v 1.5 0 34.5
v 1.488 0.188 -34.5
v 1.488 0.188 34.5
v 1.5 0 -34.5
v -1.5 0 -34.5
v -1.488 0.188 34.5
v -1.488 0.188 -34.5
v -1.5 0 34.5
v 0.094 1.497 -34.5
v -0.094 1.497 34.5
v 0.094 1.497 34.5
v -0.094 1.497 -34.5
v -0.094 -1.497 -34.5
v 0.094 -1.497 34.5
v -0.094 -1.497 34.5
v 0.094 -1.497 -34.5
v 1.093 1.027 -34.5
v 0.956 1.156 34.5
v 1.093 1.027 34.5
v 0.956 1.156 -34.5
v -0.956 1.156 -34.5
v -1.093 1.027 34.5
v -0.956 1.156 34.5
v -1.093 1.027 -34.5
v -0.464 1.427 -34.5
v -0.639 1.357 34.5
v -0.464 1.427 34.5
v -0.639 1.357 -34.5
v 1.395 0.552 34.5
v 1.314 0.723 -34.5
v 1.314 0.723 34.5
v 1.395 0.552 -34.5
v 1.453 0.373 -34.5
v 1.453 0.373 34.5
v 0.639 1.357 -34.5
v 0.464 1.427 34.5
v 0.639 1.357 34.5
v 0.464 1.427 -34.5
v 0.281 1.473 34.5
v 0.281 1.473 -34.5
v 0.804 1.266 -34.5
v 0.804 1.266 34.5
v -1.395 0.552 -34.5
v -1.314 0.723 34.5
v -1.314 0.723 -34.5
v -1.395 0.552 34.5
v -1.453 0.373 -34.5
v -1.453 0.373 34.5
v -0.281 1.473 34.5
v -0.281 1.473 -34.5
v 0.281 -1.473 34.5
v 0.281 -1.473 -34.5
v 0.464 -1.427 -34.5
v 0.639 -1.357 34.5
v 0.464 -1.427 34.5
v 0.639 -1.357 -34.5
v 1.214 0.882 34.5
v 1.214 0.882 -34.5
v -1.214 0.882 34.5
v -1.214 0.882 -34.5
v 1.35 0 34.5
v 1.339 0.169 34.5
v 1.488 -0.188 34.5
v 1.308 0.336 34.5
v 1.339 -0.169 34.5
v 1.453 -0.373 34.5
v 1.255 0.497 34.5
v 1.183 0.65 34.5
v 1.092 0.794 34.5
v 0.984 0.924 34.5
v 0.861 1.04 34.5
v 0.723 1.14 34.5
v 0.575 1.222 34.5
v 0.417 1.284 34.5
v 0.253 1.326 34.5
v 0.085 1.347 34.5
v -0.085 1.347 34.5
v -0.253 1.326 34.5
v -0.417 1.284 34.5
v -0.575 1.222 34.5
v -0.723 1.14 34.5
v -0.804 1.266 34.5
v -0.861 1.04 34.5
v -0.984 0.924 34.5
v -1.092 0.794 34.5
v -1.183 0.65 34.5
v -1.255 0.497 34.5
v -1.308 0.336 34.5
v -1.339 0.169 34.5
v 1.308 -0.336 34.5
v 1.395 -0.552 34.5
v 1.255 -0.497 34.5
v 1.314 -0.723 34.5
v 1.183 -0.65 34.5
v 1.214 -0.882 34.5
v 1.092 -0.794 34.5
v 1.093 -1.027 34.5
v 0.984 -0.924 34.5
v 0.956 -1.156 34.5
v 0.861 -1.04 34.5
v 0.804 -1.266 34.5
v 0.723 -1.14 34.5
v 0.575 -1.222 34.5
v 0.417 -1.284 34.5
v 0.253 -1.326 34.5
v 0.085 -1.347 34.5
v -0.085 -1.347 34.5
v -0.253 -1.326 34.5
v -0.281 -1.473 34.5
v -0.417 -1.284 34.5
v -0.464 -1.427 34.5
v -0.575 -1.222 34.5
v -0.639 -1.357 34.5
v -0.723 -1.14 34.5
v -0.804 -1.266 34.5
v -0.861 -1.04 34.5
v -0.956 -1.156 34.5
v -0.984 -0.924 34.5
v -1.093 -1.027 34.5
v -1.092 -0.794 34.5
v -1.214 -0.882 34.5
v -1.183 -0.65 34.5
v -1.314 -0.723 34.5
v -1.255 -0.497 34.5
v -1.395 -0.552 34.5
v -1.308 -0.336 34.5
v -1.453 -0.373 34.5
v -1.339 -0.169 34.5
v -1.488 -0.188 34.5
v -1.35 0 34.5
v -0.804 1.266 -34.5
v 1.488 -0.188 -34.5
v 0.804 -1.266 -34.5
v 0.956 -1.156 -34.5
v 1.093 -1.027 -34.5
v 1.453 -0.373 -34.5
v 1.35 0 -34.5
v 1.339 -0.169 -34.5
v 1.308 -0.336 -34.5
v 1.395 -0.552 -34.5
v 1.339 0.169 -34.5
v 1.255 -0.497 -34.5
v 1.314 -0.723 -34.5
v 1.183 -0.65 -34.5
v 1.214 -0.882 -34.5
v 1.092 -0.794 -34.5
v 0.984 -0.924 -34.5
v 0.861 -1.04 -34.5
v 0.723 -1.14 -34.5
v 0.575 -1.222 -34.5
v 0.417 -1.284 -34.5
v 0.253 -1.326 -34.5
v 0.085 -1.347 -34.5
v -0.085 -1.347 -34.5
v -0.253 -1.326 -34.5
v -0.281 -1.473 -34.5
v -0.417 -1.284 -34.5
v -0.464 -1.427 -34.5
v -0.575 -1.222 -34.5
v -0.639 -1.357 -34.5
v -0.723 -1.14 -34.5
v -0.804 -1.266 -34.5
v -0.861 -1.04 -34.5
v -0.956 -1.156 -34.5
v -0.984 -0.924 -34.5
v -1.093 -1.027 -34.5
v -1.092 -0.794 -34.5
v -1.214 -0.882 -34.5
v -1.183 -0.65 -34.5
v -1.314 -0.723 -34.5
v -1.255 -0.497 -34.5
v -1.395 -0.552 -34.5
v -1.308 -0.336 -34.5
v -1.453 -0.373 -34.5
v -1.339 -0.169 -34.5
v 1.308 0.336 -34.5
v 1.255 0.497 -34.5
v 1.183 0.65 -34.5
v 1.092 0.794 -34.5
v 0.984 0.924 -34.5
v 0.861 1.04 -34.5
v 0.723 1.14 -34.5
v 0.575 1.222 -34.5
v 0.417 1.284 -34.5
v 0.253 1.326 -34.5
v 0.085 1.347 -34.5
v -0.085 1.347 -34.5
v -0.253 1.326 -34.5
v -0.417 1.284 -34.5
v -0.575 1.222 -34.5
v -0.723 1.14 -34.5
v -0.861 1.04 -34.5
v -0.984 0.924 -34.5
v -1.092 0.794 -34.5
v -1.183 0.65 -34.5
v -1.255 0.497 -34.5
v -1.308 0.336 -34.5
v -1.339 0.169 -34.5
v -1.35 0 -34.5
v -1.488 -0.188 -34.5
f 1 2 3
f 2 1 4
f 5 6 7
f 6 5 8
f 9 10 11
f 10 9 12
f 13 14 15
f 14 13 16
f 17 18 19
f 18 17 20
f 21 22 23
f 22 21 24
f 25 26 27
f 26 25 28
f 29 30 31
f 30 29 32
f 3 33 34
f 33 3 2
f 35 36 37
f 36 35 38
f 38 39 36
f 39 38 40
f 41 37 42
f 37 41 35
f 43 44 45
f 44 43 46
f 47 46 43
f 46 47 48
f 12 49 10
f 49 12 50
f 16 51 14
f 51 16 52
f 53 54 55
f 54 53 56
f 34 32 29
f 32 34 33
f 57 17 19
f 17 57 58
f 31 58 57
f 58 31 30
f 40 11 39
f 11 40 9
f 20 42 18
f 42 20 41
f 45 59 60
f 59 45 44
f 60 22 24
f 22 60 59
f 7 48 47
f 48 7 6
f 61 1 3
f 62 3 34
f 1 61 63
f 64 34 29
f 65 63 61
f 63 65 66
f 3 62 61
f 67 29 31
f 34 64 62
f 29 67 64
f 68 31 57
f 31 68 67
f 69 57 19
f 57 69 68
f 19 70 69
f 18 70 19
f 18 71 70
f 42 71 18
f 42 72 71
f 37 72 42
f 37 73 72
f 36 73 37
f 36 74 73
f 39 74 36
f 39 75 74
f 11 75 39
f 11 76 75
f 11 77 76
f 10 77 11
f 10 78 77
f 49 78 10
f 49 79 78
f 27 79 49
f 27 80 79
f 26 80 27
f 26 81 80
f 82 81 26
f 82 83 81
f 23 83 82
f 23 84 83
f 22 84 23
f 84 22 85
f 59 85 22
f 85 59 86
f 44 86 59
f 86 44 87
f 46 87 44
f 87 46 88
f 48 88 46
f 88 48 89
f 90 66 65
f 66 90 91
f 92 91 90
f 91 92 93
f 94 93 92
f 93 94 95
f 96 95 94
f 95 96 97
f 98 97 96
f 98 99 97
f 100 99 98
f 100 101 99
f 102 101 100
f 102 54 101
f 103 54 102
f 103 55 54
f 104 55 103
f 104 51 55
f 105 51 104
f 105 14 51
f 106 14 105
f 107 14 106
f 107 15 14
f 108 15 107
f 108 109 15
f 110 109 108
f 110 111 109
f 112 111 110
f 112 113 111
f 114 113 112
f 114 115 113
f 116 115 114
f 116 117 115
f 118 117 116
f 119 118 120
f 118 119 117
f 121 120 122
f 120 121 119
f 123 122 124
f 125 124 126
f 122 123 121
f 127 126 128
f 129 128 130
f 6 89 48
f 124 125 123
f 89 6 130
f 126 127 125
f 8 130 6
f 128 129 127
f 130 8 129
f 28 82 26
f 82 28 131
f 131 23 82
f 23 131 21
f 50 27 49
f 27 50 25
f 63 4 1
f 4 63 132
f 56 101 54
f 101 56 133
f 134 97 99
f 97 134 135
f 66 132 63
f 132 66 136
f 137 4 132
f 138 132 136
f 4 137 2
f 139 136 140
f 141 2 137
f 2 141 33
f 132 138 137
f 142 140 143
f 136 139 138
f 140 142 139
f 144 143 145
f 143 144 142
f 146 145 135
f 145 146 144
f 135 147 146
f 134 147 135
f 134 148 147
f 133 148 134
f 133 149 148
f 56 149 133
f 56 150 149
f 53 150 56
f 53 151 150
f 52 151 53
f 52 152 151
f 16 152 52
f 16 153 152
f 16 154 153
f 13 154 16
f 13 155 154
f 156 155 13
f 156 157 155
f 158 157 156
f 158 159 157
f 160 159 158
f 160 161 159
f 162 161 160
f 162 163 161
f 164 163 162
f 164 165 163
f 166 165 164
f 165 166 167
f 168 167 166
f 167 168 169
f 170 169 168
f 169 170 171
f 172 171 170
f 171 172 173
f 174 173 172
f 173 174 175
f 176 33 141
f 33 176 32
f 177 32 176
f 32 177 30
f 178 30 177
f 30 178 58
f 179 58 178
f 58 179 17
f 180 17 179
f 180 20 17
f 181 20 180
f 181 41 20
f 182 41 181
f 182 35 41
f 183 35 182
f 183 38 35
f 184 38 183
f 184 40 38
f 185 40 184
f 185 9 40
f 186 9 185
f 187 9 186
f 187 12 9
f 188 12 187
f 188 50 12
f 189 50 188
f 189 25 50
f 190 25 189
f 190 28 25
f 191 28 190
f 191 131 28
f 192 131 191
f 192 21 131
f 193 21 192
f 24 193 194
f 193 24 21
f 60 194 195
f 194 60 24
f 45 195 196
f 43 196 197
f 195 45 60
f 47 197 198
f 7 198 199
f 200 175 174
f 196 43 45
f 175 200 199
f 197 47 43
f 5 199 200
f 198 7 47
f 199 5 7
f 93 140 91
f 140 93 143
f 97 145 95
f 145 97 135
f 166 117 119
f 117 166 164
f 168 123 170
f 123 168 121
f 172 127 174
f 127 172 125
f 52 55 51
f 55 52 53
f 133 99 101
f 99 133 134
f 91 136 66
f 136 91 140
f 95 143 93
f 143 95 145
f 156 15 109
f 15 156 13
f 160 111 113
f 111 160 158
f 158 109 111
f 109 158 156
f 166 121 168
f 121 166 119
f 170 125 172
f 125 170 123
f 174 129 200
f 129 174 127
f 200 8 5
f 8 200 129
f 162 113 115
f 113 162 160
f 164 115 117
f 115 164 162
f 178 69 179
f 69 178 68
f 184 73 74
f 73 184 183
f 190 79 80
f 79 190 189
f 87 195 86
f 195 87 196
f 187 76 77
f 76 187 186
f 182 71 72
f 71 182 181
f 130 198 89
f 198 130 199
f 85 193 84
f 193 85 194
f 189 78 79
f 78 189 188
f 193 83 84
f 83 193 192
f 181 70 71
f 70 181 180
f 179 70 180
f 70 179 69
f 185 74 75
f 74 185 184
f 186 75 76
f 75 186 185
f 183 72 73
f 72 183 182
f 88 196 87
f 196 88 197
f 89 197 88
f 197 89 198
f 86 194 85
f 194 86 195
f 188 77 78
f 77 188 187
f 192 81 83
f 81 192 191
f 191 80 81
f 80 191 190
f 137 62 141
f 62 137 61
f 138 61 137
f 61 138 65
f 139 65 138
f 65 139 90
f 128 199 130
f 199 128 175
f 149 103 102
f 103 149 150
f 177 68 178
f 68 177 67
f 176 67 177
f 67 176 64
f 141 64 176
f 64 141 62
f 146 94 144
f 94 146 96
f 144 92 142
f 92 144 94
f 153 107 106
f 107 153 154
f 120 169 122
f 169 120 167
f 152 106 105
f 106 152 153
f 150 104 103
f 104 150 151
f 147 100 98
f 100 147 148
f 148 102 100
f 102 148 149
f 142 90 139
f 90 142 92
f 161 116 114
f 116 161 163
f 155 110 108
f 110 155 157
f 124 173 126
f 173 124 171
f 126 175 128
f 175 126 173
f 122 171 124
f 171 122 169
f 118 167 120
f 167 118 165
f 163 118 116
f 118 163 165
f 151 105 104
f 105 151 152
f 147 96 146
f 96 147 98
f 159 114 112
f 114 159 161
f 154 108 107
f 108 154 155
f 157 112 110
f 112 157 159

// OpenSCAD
$fn = 50;


difference() {
	union() {
		translate(v = [0, 0, -34.5000000000]) {
			cylinder(h = 69, r = 1.5000000000);
		}
	}
	union() {
		translate(v = [0, 0, -100.0000000000]) {
			cylinder(h = 200, r = 1.3500000000);
		}
	}
}
